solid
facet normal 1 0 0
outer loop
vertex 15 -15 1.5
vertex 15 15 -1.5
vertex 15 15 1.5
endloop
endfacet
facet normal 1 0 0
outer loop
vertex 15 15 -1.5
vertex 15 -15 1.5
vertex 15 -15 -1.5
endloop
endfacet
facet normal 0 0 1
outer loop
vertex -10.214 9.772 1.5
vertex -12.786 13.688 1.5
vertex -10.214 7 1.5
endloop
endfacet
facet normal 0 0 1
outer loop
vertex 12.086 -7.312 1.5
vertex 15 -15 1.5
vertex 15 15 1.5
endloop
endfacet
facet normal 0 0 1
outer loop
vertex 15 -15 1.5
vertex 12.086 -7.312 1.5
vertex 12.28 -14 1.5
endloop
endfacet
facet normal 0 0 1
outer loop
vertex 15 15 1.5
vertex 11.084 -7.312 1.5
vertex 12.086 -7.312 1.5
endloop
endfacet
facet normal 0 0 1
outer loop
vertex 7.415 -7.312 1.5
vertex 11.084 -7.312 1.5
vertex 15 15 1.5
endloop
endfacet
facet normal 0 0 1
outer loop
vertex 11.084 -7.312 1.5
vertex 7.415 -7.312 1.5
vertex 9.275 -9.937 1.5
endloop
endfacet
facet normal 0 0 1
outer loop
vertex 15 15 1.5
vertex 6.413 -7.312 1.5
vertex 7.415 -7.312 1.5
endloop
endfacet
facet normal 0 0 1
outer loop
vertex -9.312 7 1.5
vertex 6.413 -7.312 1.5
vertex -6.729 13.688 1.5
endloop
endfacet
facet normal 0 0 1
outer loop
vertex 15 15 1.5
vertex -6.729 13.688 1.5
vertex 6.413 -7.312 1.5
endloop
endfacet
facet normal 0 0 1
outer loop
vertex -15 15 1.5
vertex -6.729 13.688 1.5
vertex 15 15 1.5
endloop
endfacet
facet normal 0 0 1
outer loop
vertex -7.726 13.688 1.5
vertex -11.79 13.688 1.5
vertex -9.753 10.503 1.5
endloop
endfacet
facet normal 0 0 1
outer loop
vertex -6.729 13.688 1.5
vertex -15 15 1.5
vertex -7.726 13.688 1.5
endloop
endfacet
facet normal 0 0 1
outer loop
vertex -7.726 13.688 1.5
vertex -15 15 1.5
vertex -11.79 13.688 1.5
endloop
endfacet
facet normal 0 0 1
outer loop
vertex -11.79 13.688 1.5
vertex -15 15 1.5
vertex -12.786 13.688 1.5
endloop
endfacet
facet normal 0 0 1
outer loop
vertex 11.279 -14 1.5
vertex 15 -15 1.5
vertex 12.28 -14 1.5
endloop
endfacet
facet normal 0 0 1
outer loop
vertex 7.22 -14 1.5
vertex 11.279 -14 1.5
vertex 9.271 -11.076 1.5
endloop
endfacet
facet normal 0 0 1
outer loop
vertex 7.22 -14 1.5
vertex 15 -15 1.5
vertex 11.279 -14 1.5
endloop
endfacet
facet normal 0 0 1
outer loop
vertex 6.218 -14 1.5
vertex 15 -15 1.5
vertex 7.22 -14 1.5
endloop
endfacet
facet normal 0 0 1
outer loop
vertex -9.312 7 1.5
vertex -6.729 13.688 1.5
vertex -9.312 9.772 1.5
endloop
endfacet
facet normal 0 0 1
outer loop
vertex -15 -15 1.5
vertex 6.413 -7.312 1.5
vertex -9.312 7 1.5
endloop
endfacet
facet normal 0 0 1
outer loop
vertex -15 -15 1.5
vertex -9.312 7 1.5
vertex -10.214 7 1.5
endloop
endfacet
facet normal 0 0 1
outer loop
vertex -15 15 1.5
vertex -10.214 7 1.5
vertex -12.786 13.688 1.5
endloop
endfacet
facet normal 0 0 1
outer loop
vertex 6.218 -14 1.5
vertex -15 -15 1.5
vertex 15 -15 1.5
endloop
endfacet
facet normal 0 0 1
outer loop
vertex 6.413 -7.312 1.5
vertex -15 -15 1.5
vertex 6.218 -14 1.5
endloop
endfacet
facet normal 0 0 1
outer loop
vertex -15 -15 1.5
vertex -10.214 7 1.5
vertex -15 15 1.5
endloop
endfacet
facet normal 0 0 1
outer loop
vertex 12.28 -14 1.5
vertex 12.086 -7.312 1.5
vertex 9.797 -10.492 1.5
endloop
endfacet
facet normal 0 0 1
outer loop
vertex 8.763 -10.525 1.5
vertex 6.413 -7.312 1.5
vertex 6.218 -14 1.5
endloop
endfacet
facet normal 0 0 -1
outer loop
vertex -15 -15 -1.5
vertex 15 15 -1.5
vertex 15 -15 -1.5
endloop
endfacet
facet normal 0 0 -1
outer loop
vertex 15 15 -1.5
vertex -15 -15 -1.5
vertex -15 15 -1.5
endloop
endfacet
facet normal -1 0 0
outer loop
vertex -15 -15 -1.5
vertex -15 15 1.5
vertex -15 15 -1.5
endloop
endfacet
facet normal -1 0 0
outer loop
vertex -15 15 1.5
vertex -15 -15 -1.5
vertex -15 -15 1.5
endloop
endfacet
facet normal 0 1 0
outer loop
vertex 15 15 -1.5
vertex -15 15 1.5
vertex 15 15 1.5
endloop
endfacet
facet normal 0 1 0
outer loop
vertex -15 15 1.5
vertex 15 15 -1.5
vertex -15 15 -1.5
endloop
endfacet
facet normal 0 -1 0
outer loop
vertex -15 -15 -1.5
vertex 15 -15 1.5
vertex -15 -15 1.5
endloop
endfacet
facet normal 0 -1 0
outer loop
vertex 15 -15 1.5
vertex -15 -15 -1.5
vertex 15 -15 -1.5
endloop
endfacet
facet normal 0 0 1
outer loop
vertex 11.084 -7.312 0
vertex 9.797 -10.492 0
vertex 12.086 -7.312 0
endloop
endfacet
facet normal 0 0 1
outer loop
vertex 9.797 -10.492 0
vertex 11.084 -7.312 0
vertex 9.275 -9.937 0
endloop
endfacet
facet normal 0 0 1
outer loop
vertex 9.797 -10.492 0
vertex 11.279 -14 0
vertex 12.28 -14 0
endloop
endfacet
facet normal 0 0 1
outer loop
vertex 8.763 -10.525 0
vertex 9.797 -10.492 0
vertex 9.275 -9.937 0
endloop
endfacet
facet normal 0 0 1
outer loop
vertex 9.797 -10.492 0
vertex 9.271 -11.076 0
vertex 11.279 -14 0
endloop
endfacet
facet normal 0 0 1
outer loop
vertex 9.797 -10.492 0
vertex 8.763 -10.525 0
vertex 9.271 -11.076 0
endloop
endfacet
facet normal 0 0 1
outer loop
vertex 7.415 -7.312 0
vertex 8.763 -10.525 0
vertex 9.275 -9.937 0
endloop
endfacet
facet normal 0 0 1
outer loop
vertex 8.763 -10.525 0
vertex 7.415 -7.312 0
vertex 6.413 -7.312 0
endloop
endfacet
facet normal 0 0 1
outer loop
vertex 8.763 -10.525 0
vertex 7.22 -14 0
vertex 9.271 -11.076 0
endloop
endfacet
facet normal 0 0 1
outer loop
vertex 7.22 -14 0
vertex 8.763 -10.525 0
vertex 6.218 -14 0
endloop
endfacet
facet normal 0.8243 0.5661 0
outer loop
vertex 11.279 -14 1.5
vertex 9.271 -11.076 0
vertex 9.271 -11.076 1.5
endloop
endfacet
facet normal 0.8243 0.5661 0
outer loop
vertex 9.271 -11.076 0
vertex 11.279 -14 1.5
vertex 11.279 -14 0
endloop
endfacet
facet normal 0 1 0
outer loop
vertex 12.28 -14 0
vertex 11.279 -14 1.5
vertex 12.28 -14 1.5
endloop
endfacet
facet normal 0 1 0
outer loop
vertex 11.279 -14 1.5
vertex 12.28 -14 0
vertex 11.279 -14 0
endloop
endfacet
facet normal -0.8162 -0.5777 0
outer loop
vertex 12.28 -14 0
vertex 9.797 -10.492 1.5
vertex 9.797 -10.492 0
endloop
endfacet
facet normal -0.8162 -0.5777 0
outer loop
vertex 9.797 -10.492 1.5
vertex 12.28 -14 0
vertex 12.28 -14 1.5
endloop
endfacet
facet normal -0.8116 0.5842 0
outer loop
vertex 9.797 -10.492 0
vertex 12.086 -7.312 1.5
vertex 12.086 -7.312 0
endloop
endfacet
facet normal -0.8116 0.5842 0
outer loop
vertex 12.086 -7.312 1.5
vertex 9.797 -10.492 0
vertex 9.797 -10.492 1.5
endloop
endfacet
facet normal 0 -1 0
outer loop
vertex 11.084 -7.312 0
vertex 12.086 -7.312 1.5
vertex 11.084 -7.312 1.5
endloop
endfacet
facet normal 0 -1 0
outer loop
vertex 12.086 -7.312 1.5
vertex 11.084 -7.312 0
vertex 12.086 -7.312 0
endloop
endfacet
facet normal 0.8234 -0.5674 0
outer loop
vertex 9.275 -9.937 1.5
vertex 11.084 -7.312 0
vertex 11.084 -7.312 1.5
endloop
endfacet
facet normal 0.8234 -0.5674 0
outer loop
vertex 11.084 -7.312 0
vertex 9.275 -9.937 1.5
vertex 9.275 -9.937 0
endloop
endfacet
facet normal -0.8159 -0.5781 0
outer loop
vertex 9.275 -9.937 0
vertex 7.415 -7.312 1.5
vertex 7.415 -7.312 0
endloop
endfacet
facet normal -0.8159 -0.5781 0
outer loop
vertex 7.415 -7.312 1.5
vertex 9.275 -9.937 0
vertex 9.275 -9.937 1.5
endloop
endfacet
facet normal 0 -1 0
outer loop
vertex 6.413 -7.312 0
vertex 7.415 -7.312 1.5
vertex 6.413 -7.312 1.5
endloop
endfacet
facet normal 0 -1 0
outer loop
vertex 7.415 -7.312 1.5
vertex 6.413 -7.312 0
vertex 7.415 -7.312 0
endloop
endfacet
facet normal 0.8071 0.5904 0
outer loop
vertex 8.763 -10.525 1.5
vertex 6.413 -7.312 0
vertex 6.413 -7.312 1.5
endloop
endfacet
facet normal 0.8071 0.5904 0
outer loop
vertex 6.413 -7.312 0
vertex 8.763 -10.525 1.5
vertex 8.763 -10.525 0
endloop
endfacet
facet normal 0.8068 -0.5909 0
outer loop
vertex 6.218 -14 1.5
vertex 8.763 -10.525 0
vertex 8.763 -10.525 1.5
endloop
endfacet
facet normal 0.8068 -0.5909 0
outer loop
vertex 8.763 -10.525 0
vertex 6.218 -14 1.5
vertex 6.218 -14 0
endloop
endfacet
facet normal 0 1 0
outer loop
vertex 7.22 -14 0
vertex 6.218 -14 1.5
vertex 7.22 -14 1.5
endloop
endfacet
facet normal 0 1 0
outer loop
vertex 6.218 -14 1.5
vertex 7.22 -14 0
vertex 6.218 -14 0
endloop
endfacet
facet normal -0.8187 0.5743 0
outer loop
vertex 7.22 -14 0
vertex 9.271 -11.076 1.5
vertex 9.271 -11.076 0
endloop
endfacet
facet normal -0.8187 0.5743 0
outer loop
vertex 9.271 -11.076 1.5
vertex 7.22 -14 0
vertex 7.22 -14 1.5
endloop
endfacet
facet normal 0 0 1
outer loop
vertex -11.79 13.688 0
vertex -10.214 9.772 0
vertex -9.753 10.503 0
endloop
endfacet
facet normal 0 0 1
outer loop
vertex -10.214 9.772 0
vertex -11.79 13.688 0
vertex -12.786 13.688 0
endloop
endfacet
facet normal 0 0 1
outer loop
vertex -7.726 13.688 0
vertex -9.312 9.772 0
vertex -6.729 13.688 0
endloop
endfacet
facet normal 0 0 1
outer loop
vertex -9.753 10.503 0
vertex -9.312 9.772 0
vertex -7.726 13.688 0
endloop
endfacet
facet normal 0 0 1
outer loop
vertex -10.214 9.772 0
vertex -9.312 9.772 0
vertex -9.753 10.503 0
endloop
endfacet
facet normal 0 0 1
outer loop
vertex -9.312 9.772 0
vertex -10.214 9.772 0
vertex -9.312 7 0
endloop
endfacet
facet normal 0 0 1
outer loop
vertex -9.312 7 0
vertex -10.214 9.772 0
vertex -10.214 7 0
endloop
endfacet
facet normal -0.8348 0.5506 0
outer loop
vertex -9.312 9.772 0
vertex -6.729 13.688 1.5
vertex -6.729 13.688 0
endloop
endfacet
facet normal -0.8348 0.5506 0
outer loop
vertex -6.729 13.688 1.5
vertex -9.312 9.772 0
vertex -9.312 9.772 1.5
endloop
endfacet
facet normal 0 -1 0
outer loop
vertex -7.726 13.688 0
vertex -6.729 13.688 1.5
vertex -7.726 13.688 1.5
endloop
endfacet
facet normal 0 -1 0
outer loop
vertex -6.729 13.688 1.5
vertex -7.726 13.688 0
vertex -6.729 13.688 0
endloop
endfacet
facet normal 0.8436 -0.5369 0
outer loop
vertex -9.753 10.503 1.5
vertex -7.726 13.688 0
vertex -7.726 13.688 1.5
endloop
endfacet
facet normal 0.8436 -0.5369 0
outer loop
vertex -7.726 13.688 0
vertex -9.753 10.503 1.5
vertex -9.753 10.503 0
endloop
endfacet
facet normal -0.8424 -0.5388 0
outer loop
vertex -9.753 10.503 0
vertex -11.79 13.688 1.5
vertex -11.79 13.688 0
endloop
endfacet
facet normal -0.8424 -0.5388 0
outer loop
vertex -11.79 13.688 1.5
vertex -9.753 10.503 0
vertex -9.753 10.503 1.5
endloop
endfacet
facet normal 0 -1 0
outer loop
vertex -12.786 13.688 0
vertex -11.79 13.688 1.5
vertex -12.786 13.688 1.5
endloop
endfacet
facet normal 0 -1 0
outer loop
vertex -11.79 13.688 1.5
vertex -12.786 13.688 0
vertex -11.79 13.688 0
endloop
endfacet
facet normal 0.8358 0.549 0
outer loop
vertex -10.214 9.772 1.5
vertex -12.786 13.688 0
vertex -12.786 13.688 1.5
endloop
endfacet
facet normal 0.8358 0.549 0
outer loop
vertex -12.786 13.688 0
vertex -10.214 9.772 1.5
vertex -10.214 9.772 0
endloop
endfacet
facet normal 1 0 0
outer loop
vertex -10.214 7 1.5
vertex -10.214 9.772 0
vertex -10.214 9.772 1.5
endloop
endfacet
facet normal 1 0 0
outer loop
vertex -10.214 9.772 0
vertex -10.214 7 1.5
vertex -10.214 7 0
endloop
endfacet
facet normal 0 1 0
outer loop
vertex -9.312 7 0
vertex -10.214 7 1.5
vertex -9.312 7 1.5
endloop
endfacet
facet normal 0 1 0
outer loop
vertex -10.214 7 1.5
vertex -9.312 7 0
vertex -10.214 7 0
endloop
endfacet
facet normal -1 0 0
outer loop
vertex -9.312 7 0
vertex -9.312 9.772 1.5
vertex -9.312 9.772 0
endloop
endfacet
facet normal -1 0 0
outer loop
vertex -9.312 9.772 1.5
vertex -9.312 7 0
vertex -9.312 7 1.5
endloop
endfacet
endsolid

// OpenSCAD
// Dimension test

difference() {
cube([30,30,3], center=true);

linear_extrude(2)
  translate([6,-14,1.5])
  #text(text="X", size=7.0);

linear_extrude(2)    
translate([-13,7,1.5])
  #text(text="Y", size=7.0);
}
